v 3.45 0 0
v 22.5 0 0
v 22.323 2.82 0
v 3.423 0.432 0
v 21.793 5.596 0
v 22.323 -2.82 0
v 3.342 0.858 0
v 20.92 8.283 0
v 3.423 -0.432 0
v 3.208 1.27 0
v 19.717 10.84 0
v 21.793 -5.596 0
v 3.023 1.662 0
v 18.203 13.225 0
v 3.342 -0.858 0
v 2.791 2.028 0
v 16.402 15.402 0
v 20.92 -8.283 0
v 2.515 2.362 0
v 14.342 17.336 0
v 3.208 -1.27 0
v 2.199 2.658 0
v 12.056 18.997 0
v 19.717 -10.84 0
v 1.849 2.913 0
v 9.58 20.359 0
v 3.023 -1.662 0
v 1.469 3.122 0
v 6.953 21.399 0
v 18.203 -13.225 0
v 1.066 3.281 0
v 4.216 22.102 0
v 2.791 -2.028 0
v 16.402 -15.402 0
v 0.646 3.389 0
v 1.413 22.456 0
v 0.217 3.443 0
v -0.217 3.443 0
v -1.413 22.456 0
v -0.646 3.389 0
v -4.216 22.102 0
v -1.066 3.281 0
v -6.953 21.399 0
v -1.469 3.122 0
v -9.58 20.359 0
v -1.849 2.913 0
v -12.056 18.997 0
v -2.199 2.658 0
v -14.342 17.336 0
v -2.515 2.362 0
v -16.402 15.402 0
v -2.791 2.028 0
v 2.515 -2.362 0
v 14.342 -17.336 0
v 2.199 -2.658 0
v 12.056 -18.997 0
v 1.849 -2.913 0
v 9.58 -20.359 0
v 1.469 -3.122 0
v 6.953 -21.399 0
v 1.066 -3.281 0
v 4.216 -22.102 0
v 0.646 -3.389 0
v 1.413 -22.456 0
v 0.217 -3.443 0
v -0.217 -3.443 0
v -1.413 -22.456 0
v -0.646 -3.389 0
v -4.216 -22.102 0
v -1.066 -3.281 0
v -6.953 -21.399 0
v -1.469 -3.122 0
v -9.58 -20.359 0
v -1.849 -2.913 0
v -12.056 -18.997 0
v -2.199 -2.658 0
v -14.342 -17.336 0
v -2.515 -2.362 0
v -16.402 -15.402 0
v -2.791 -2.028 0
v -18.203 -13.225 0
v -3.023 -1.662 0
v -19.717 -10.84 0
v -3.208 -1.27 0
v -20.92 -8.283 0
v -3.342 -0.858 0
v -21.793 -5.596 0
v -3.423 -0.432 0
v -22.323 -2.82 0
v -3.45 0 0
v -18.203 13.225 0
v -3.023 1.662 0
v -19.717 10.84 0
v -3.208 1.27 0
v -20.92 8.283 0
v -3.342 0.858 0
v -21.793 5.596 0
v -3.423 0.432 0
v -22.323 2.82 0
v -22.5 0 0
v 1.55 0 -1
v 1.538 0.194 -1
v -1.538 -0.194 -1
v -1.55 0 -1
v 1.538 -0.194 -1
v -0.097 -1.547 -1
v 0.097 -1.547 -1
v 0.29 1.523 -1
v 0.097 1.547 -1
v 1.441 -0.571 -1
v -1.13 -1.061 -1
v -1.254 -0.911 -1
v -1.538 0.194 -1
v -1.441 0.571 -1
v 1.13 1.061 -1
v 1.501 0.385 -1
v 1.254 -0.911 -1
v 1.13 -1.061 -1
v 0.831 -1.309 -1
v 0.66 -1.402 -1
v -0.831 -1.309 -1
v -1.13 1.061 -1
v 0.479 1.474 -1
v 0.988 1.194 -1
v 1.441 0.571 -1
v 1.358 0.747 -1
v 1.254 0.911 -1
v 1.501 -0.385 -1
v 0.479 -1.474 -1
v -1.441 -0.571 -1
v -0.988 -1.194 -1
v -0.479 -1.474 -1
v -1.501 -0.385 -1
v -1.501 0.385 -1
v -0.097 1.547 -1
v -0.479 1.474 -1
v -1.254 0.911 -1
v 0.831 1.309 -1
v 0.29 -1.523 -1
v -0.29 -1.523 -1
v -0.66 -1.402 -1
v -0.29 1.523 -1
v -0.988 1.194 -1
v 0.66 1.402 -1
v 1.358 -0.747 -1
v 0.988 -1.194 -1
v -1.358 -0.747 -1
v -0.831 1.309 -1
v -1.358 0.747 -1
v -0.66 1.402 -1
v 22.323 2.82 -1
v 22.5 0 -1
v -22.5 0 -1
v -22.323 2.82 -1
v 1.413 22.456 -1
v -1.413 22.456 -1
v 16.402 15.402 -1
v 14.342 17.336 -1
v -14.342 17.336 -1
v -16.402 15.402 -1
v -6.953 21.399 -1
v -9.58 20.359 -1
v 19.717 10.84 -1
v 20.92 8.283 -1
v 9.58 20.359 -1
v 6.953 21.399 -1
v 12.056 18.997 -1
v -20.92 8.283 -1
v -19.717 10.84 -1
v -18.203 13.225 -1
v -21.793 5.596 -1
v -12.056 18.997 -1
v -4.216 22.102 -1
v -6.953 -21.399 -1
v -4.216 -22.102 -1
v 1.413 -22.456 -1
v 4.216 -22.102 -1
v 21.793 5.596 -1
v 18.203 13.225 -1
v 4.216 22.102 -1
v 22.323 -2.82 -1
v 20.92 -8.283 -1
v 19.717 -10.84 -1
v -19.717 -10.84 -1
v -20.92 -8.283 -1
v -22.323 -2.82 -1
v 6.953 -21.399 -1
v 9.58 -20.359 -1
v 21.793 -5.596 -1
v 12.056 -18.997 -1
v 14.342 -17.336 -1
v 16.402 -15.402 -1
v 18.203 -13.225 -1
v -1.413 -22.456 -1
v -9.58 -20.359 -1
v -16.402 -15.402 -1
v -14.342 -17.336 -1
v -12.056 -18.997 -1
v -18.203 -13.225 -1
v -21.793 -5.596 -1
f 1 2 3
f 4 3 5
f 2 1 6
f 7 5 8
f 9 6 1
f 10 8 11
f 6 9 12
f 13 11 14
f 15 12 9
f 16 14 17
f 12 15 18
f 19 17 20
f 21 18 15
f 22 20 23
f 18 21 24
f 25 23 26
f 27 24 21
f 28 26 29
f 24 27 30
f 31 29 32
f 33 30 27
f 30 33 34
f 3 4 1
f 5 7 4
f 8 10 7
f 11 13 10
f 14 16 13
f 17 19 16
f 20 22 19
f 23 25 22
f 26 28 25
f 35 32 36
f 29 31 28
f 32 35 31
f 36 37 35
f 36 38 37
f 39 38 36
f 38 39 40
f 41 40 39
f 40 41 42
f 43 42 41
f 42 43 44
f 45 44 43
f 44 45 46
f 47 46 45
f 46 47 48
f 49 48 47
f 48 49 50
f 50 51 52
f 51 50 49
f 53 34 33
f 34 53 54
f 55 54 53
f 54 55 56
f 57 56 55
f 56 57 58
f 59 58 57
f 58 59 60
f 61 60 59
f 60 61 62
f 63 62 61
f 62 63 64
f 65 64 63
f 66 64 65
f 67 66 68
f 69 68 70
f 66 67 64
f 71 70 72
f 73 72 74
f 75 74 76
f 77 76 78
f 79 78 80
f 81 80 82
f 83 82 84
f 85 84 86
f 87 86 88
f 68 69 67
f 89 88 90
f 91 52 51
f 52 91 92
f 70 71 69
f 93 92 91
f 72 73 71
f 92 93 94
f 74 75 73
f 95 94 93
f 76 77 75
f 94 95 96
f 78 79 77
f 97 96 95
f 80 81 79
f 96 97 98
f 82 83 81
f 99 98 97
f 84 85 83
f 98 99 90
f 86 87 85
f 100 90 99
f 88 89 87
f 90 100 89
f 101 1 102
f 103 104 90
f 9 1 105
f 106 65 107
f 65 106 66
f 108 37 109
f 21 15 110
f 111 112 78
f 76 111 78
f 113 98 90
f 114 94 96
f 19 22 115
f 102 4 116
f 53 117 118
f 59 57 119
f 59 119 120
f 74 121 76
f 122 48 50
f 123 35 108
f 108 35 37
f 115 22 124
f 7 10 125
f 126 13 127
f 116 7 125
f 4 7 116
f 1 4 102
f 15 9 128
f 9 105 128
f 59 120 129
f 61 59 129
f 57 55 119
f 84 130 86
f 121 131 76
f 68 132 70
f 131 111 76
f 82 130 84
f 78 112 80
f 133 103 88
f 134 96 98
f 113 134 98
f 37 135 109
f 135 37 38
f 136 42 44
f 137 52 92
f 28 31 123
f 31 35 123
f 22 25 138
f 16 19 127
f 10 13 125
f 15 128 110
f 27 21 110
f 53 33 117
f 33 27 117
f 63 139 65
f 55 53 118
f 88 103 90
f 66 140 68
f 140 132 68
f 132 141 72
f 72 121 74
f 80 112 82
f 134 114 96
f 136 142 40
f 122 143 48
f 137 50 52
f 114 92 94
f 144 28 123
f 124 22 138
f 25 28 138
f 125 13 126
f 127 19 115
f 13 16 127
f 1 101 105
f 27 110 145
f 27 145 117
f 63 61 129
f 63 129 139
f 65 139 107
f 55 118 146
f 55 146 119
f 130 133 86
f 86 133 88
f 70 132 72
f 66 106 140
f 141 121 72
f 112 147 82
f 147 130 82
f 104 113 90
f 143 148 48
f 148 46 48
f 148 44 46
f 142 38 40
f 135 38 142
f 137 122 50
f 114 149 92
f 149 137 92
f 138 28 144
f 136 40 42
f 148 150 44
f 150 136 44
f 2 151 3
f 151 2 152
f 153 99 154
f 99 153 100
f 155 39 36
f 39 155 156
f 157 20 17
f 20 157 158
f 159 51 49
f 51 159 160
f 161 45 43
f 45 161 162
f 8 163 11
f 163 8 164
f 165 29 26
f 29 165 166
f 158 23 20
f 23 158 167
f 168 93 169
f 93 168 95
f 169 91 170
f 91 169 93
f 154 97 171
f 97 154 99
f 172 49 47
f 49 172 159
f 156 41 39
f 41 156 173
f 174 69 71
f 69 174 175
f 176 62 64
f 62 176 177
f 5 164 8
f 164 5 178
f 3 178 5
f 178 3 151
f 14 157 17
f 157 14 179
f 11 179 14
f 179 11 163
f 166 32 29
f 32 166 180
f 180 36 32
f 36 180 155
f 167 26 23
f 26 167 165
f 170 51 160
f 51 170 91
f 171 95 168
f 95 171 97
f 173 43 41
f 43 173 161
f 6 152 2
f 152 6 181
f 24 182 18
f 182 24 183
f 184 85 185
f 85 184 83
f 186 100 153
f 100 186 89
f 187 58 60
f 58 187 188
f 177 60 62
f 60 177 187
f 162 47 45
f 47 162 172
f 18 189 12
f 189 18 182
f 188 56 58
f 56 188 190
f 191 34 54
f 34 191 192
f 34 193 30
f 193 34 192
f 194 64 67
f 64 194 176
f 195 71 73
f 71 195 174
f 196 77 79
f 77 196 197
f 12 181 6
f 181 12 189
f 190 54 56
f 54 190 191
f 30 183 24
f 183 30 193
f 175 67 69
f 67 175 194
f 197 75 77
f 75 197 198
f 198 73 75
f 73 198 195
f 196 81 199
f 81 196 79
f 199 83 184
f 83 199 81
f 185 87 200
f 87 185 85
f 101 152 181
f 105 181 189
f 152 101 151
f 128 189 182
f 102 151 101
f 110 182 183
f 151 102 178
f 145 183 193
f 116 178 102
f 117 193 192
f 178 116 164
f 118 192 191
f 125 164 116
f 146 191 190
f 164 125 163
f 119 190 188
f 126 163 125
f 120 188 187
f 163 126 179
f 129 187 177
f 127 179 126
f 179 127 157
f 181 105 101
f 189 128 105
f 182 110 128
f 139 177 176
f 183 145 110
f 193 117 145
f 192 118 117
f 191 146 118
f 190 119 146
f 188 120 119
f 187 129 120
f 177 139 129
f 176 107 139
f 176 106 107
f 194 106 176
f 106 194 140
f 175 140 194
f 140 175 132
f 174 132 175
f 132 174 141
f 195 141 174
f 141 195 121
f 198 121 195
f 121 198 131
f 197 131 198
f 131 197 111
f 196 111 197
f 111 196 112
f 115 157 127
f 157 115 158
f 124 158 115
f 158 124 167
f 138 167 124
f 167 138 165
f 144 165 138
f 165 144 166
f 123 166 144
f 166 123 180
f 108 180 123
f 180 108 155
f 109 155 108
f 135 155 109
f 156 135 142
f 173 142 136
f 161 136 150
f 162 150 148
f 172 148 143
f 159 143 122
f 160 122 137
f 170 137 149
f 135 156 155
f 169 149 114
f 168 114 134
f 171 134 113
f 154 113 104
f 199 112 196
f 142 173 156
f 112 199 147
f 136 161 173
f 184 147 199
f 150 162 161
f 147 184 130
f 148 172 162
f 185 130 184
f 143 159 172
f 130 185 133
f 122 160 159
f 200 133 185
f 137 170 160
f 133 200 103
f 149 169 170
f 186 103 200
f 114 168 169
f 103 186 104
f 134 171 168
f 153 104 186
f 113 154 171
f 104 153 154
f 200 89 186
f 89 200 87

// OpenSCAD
$fn = 50;

difference() {
	union() {
		translate(v = [0, 0, -1.0]) {
			cylinder(h = 1.0, r = 22.5);
		}
	}
	union() {
		translate(v = [0, 0, 0]) {
			rotate(a = [0, 0, 0]) {
				difference() {
					union() {
						translate(v = [0, 0, -4.0]) {
							cylinder(h = 4.0, r = 1.25);
						}
						translate(v = [0, 0, -1.0]) {
							cylinder(h = 1.0, r1 = 1.55, r2 = 3.45);
						}
						translate(v = [0, 0, -4.0]) {
							cylinder(h = 4.0, r = 1.55);
						}
						translate(v = [0, 0, -4.0]) {
							cylinder(h = 4.0, r = 1.25);
						}
					}
					union();
				}
			}
		}
	}
}
